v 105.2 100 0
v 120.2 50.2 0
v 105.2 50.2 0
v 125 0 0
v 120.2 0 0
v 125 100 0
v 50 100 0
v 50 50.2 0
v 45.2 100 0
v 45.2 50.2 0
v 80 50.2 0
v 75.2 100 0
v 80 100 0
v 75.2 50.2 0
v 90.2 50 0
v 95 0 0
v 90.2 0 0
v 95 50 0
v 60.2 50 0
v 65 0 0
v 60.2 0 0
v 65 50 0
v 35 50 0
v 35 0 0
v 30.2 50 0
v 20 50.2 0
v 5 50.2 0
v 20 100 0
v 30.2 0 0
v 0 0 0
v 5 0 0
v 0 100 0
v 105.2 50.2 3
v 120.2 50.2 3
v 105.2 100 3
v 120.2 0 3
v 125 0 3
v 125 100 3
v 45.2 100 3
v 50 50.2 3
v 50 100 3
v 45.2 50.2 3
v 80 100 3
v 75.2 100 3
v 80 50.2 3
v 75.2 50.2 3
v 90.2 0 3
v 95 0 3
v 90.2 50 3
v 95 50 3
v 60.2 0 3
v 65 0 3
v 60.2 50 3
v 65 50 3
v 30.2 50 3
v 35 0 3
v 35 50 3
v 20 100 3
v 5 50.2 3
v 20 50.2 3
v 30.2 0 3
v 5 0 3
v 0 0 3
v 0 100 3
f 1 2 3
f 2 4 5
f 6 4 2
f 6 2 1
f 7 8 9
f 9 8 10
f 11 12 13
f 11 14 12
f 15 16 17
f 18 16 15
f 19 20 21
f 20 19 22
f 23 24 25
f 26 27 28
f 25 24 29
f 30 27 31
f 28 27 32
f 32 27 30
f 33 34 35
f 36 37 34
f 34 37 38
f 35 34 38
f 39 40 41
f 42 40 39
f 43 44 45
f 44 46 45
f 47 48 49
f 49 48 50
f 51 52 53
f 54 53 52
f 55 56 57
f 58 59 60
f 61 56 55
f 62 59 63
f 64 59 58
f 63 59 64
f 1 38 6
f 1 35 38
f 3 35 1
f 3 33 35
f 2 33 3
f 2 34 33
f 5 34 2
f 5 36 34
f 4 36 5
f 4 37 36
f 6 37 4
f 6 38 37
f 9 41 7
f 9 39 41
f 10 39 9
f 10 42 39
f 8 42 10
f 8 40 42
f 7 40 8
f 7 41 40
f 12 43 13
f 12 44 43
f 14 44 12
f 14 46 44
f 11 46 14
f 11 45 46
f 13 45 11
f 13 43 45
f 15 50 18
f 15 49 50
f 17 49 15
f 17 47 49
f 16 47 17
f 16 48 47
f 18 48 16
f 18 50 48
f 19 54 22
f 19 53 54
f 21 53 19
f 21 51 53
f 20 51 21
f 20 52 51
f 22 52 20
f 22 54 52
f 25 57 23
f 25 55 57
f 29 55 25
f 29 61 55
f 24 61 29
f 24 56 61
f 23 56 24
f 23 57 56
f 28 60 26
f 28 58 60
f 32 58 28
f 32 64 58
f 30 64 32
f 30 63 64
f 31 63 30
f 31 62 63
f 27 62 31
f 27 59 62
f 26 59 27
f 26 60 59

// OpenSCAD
// file: TM4-inserts/common/params.scad
$fn = $preview ? 32 : 64;

// Value of kerf to apply when lasercutting things.
// Value is based on the experience using Epilog Mini machine in
// Google WFC Makerspace.
kerf = 0.2;

// Spacing between insert and miniatures bases to allow to slick fit.
insert_spacing = 0.2;
magnet_spacing = 0.15;

// Default values
//
// Default diameter of magnets used for my miniatures.
default_magnet_diameter = 3;
base_height = 3;
pin_height = 2.5;
// file: common/params.scad
$fn = $preview ? 32 : 64;

// Value of kerf to apply when lasercutting things.
// Value is based on the experience using Epilog Mini machine in
// Google WFC Makerspace.
kerf = 0.2;

// Spacing between insert and miniatures bases to allow to slick fit.
insert_spacing = 0.2;
magnet_spacing = 0.15;

// Default values
//
// Default diameter of magnets used for my miniatures.
default_magnet_diameter = 3;
base_height = 3;
pin_height = 2.5;
// file: TM4-inserts/common/kow.scad
include <params.scad>;

module MagnetSockets(unit_type, only_diagonal = false) {
  baseSize = BaseSize(unit_type);

  translate([ 5, baseSize[1] - 5 ]) children(0);
  translate([ baseSize[0] - 5, 5 ]) children(0);

  if (!only_diagonal) {
    translate([ 5, 5 ]) children(0);
    translate([ baseSize[0] - 5, baseSize[1] - 5 ]) children(0);
  }
}

module Magnet(d = default_magnet_diameter, offset = 0) {
  circle(d = d + offset);
}

module BM4Sockets(unit_type, spacing, only_diagonal = false) {
  MagnetSockets(unit_type = unit_type, only_diagonal = only_diagonal) {
    Magnet(offset = spacing);
  }
}

module Base(unit_type, extraMargin = [ 0, 0 ]) {
  square(BaseSize(unit_type) + extraMargin);
}

function BaseSize(unit_type) = unit_type == "infantry"         ? [ 20, 20 ]
                               : unit_type == "heavy_infantry" ? [ 25, 25 ]
                               : unit_type == "cavalry"        ? [ 25, 50 ]
                               : unit_type == "lrginf"         ? [ 40, 40 ]
                               : unit_type == "lrgcav"         ? [ 50, 50 ]
                               : unit_type == "titan"          ? [ 75, 75 ]
                                                               : [ 10, 10 ];

function BaseNum(unit_type, unitSize) =
    unit_type == "infantry"  ? unitSize == "legion"     ? [ 10, 6 ]
                               : unitSize == "horde"    ? [ 10, 4 ]
                               : unitSize == "regiment" ? [ 5, 4 ]
                                                        : [ 5, 2 ]
    : unit_type == "cavalry" ? unitSize == "regiment" ? [ 5, 2 ] : [ 5, 1 ]
    : unit_type == "lrginf"  ? unitSize == "regiment" ? [ 3, 1 ] : [ 3, 2 ]
    : unit_type == "lrgcav"  ? unitSize == "regiment" ? [ 3, 1 ]
                               : unitSize == "horde"  ? [ 3, 2 ]
                                                      : [ 1, 1 ]
                             : [ 1, 1 ];
// file: common/libtray.scad
include <kow.scad>

module MagnetHole() { Magnet(offset = -kerf); }

module TrayFullMagnets(unit_type, unitSize) {
  Tray(unit_type, unitSize) {
    Grid(size = BaseNum(unit_type, unitSize), spacing = BaseSize(unit_type)) {
      MagnetSockets(unit_type);
    }
  }
}

module Tray(unit_type, unitSize) {
  difference() {
    SimpleTray(unit_type, unitSize);
    children();
  }
}

// SimpleTray returns a tray of size for a given unit type and size.
// The tray is a simple square without any extra additions.
module SimpleTray(unit_type, unitSize) {
  baseSize = BaseSize(unit_type);
  baseNum = BaseNum(unit_type, unitSize);

  square(size = [ baseNum[0] * baseSize[0], baseNum[1] * baseSize[1] ]);
}

module Grid(size = [ 1, 1 ], spacing = [ 0, 0 ]) {
  for (i = [0:size[0] - 1], j = [0:size[1] - 1]) {
    translate([ i * spacing[0], j * spacing[1] ]) { children(0); }
  }
}

module Sockets(unit_type) {
  MagnetSockets(unit_type) { MagnetHole(); }
}
// file: common/kow.scad
include <params.scad>;

module MagnetSockets(unit_type, only_diagonal = false) {
  baseSize = BaseSize(unit_type);

  translate([ 5, baseSize[1] - 5 ]) children(0);
  translate([ baseSize[0] - 5, 5 ]) children(0);

  if (!only_diagonal) {
    translate([ 5, 5 ]) children(0);
    translate([ baseSize[0] - 5, baseSize[1] - 5 ]) children(0);
  }
}

module Magnet(d = default_magnet_diameter, offset = 0) {
  circle(d = d + offset);
}

module BM4Sockets(unit_type, spacing, only_diagonal = false) {
  MagnetSockets(unit_type = unit_type, only_diagonal = only_diagonal) {
    Magnet(offset = spacing);
  }
}

module Base(unit_type, extraMargin = [ 0, 0 ]) {
  square(BaseSize(unit_type) + extraMargin);
}

function BaseSize(unit_type) = unit_type == "infantry"         ? [ 20, 20 ]
                               : unit_type == "heavy_infantry" ? [ 25, 25 ]
                               : unit_type == "cavalry"        ? [ 25, 50 ]
                               : unit_type == "lrginf"         ? [ 40, 40 ]
                               : unit_type == "lrgcav"         ? [ 50, 50 ]
                               : unit_type == "titan"          ? [ 75, 75 ]
                                                               : [ 10, 10 ];

function BaseNum(unit_type, unitSize) =
    unit_type == "infantry"  ? unitSize == "legion"     ? [ 10, 6 ]
                               : unitSize == "horde"    ? [ 10, 4 ]
                               : unitSize == "regiment" ? [ 5, 4 ]
                                                        : [ 5, 2 ]
    : unit_type == "cavalry" ? unitSize == "regiment" ? [ 5, 2 ] : [ 5, 1 ]
    : unit_type == "lrginf"  ? unitSize == "regiment" ? [ 3, 1 ] : [ 3, 2 ]
    : unit_type == "lrgcav"  ? unitSize == "regiment" ? [ 3, 1 ]
                               : unitSize == "horde"  ? [ 3, 2 ]
                                                      : [ 1, 1 ]
                             : [ 1, 1 ];
// file: TM4-inserts/libinsert.scad
include <common/kow.scad>;

module Pin() {
  Magnet(offset = -magnet_spacing);
}

module LInsert(size, unit_size, unit_type = "infantry") {
  base_num = BaseNum(unit_type, unit_size);
  base_size = BaseSize(unit_type);

  union() {
    width = size * base_size[0];
    length = base_num[1] * base_size[1];

    linear_extrude(height = base_height) {
      square(size =
                 [ width - 10 - insert_spacing, base_num[1] * base_size[1] ]);
      translate(v = [ 0, length - base_size[1] + insert_spacing]) {
        square(size = [ width - insert_spacing, base_size[1] - insert_spacing ]);
      }
    }
    translate(v = [ 0, 0, base_height ]) linear_extrude(height = pin_height) {
      translate(v = [ 5, 5 ]) Pin();
      translate(v = [ 5, length - 5 ]) Pin();
      translate(v = [ width - 5, length - 5 ]) Pin();

      if (size > 1) {
        translate(v = [ width - 5 - 10, 5 ]) Pin();
      }
    }
  }
}

module SideInsert(size, unit_size, unit_type = "infantry") {
  base_num = BaseNum(unit_type, unit_size);
  base_size = BaseSize(unit_type);

  union() {
    width = size * base_size[0];
    length = base_num[1] * base_size[1];

    linear_extrude(height = base_height) {
      difference() {
        square(size = [ width - insert_spacing, length ]);
        translate([width, length/2]) circle(0.5);
      }
    }
    translate(v = [ 0, 0, 3 ]) linear_extrude(height = pin_height) {
      translate(v = [ 5, 5 ]) Pin();
      translate(v = [ 5, length - 5 ]) Pin();
      if (size >= 1) {
        translate(v = [ width - 5, 5 ]) Pin();
        translate(v = [ width - 5, length - 5 ]) Pin();
      }
    }
  }
}
// main file
use <TM4-inserts/libinsert.scad>;
use <common/kow.scad>;
use <common/libtray.scad>;

$fn = $preview ? 32 : 64;

linear_extrude(height = 3) {
  Tray(unit_type = "cavalry", unitSize = "regiment") {
    union() {
      translate([ 5, 0 ]) Grid(size = [ 4, 1 ], spacing = [ 30, 0 ]) {
        Base("cavalry", extraMargin = [ 0.2, 0.2 ]);
      }
      translate([ 20, 50 ]) Grid(size = [ 3, 1 ], spacing = [ 30, 0 ]) {
        Base("cavalry", extraMargin = [ 0.2, 0.2 ]);
      }
    }
  }
}
